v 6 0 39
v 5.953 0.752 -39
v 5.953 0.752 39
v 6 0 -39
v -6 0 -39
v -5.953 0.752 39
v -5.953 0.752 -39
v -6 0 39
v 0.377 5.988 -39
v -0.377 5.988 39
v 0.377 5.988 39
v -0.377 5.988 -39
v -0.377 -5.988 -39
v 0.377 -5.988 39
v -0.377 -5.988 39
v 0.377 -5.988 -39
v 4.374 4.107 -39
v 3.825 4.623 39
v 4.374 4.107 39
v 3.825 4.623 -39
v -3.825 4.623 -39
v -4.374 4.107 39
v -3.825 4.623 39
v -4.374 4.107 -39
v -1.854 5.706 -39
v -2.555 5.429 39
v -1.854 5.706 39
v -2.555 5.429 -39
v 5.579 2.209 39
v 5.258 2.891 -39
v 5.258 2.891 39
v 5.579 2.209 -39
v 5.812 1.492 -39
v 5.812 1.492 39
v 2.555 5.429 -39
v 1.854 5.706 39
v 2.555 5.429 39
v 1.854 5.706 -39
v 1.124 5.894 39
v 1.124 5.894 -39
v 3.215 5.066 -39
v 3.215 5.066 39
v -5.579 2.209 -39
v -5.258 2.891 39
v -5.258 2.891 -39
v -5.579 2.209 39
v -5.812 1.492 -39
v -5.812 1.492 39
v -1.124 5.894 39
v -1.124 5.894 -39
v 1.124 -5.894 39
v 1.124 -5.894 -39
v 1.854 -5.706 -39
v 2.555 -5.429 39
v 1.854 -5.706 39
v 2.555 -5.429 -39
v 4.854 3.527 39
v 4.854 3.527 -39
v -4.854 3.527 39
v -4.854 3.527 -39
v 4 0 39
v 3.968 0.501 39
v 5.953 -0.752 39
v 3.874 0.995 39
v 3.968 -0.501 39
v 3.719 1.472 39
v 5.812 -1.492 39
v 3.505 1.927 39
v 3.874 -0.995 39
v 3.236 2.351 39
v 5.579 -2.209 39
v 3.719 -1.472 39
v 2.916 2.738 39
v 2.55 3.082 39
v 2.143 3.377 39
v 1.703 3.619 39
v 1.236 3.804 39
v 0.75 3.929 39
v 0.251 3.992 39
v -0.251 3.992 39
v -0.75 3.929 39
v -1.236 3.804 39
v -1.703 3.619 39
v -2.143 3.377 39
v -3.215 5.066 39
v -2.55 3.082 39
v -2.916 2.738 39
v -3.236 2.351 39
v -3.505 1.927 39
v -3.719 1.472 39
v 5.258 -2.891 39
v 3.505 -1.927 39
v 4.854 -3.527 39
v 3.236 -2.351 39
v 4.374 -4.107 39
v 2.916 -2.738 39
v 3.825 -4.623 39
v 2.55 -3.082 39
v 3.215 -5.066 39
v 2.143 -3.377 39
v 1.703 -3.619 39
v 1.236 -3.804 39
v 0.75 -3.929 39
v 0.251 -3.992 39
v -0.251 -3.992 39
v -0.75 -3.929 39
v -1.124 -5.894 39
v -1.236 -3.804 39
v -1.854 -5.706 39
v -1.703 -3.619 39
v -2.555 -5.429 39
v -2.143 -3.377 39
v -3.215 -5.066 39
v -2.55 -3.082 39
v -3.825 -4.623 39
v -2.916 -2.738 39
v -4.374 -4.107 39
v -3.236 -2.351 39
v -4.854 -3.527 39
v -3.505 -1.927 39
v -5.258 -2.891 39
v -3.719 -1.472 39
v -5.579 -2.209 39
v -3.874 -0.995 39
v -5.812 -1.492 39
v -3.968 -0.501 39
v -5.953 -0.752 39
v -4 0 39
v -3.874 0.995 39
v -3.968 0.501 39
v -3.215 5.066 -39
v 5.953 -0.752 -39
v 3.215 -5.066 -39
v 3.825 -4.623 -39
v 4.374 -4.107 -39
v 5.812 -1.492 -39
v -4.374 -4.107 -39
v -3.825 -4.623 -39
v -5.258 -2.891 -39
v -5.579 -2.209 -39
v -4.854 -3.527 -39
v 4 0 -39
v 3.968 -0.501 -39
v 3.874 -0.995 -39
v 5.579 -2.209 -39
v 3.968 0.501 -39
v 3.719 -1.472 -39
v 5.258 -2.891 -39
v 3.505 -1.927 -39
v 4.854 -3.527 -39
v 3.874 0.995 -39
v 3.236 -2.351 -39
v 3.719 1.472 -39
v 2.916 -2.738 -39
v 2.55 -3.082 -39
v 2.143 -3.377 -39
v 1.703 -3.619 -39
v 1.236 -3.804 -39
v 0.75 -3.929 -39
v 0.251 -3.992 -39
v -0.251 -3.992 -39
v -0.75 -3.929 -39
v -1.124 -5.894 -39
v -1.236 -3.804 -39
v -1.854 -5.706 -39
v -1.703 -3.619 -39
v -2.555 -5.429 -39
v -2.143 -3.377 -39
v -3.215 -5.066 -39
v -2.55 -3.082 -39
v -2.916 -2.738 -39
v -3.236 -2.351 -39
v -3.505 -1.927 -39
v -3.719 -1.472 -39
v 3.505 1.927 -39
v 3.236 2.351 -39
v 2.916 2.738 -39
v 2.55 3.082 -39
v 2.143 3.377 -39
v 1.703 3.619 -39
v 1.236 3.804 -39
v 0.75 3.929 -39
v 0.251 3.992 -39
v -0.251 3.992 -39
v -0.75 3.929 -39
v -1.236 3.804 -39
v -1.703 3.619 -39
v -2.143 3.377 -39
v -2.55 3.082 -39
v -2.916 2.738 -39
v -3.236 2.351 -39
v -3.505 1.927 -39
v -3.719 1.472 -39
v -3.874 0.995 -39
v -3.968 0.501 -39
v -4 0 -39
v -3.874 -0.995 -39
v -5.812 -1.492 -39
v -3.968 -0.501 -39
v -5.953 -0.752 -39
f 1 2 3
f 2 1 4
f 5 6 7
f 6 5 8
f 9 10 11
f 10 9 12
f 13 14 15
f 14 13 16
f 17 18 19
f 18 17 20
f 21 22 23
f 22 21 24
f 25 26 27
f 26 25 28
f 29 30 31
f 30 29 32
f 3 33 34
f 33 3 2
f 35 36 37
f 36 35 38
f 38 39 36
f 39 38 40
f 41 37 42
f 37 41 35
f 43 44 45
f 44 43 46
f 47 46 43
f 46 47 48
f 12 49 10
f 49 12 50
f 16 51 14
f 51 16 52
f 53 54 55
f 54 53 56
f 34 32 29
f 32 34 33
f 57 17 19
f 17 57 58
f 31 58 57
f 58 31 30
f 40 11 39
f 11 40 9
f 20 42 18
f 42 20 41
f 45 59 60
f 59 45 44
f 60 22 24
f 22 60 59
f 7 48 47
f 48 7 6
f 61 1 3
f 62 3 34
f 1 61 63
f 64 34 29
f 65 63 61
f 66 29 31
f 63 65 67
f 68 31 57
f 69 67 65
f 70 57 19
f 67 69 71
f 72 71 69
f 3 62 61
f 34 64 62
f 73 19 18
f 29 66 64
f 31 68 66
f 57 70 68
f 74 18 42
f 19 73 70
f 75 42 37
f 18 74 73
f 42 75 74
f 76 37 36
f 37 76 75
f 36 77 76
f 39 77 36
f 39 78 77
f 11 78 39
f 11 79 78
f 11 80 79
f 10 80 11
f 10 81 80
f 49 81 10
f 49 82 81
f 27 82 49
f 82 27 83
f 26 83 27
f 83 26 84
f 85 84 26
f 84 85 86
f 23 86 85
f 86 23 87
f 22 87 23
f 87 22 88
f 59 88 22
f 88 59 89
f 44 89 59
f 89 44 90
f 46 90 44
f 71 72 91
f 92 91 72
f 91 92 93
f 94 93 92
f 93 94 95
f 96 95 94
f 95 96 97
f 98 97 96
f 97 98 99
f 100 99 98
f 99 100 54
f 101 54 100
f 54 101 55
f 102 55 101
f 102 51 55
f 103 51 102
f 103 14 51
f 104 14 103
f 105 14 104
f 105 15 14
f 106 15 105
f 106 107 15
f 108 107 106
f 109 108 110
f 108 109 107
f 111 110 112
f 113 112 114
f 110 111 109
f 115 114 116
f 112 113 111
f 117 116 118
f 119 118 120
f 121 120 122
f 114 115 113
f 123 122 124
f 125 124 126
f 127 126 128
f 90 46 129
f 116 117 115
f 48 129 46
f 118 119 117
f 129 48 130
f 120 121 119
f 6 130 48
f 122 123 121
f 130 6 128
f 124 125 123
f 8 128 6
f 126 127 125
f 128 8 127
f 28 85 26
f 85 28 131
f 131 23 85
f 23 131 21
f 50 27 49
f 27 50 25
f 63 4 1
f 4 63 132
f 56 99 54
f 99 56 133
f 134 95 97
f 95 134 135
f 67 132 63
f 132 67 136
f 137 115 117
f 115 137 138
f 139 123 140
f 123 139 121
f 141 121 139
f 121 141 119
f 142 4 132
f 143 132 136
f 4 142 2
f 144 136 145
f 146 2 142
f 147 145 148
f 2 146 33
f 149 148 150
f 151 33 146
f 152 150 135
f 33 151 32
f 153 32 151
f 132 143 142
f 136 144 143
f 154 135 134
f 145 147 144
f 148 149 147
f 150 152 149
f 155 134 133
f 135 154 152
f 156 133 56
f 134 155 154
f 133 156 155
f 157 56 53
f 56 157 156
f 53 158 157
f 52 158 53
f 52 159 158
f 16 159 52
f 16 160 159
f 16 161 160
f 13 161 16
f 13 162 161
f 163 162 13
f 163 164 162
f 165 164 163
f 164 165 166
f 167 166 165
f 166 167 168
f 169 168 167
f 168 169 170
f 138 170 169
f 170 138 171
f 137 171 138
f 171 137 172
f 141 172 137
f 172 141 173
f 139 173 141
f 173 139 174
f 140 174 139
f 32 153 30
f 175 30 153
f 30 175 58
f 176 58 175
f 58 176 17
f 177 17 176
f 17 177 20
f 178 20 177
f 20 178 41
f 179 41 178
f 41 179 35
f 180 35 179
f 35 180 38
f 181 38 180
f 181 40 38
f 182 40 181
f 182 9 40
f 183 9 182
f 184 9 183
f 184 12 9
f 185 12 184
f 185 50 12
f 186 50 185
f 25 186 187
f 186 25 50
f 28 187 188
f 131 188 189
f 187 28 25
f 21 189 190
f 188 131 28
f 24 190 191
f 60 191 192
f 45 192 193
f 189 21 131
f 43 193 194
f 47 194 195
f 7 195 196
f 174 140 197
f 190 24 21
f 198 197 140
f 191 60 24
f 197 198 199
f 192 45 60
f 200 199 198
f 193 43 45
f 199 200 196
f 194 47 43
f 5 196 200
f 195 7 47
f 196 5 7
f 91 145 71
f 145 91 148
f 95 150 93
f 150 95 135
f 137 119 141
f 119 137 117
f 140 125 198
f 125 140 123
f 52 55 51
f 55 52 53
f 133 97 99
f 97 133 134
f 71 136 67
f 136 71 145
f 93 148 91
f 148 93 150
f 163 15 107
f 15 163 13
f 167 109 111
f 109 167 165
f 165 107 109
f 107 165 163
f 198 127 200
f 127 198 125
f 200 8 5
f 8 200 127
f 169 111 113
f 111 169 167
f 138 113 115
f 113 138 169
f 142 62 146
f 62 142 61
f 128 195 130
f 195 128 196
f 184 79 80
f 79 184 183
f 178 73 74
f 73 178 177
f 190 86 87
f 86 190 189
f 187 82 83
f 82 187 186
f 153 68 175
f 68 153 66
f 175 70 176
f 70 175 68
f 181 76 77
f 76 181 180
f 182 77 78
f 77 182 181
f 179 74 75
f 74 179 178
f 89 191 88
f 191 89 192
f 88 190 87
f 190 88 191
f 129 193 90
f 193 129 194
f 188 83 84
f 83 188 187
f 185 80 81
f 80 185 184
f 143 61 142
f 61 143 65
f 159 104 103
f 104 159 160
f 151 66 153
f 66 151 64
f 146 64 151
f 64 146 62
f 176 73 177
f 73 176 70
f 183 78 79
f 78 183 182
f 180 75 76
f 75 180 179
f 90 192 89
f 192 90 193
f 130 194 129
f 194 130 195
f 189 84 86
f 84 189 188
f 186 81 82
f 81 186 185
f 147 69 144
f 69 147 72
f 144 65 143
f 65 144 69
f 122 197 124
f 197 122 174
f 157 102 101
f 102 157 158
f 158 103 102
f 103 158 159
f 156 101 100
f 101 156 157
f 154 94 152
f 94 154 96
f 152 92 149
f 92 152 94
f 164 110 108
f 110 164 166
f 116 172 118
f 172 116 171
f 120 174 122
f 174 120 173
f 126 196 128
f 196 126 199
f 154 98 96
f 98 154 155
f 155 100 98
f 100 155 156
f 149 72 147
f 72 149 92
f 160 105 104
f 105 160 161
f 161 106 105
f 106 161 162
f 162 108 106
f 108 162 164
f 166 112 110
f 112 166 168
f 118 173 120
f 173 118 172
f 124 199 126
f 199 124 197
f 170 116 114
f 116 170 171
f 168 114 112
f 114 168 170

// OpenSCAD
$fn = 50;


difference() {
	union() {
		translate(v = [0, 0, -39.0000000000]) {
			cylinder(h = 78, r = 6.0000000000);
		}
	}
	union() {
		translate(v = [0, 0, -100.0000000000]) {
			cylinder(h = 200, r = 4);
		}
	}
}
